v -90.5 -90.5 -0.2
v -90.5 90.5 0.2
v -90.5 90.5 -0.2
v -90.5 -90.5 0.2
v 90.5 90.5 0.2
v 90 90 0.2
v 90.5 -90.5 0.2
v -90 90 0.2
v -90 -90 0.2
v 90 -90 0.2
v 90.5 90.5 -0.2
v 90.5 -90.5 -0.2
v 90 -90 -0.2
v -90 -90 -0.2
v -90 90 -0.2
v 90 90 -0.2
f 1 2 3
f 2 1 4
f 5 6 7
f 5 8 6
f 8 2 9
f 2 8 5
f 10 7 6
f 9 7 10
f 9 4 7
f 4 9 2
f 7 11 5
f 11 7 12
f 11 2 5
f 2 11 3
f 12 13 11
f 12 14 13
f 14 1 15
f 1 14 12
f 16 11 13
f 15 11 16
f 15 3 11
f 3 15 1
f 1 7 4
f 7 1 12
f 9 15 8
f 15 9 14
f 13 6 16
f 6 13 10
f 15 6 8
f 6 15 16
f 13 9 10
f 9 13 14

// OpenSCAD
difference() {
    cube([181, 181, 0.4], center=true);
    
    cube([180, 180, 1], center=true);
}
